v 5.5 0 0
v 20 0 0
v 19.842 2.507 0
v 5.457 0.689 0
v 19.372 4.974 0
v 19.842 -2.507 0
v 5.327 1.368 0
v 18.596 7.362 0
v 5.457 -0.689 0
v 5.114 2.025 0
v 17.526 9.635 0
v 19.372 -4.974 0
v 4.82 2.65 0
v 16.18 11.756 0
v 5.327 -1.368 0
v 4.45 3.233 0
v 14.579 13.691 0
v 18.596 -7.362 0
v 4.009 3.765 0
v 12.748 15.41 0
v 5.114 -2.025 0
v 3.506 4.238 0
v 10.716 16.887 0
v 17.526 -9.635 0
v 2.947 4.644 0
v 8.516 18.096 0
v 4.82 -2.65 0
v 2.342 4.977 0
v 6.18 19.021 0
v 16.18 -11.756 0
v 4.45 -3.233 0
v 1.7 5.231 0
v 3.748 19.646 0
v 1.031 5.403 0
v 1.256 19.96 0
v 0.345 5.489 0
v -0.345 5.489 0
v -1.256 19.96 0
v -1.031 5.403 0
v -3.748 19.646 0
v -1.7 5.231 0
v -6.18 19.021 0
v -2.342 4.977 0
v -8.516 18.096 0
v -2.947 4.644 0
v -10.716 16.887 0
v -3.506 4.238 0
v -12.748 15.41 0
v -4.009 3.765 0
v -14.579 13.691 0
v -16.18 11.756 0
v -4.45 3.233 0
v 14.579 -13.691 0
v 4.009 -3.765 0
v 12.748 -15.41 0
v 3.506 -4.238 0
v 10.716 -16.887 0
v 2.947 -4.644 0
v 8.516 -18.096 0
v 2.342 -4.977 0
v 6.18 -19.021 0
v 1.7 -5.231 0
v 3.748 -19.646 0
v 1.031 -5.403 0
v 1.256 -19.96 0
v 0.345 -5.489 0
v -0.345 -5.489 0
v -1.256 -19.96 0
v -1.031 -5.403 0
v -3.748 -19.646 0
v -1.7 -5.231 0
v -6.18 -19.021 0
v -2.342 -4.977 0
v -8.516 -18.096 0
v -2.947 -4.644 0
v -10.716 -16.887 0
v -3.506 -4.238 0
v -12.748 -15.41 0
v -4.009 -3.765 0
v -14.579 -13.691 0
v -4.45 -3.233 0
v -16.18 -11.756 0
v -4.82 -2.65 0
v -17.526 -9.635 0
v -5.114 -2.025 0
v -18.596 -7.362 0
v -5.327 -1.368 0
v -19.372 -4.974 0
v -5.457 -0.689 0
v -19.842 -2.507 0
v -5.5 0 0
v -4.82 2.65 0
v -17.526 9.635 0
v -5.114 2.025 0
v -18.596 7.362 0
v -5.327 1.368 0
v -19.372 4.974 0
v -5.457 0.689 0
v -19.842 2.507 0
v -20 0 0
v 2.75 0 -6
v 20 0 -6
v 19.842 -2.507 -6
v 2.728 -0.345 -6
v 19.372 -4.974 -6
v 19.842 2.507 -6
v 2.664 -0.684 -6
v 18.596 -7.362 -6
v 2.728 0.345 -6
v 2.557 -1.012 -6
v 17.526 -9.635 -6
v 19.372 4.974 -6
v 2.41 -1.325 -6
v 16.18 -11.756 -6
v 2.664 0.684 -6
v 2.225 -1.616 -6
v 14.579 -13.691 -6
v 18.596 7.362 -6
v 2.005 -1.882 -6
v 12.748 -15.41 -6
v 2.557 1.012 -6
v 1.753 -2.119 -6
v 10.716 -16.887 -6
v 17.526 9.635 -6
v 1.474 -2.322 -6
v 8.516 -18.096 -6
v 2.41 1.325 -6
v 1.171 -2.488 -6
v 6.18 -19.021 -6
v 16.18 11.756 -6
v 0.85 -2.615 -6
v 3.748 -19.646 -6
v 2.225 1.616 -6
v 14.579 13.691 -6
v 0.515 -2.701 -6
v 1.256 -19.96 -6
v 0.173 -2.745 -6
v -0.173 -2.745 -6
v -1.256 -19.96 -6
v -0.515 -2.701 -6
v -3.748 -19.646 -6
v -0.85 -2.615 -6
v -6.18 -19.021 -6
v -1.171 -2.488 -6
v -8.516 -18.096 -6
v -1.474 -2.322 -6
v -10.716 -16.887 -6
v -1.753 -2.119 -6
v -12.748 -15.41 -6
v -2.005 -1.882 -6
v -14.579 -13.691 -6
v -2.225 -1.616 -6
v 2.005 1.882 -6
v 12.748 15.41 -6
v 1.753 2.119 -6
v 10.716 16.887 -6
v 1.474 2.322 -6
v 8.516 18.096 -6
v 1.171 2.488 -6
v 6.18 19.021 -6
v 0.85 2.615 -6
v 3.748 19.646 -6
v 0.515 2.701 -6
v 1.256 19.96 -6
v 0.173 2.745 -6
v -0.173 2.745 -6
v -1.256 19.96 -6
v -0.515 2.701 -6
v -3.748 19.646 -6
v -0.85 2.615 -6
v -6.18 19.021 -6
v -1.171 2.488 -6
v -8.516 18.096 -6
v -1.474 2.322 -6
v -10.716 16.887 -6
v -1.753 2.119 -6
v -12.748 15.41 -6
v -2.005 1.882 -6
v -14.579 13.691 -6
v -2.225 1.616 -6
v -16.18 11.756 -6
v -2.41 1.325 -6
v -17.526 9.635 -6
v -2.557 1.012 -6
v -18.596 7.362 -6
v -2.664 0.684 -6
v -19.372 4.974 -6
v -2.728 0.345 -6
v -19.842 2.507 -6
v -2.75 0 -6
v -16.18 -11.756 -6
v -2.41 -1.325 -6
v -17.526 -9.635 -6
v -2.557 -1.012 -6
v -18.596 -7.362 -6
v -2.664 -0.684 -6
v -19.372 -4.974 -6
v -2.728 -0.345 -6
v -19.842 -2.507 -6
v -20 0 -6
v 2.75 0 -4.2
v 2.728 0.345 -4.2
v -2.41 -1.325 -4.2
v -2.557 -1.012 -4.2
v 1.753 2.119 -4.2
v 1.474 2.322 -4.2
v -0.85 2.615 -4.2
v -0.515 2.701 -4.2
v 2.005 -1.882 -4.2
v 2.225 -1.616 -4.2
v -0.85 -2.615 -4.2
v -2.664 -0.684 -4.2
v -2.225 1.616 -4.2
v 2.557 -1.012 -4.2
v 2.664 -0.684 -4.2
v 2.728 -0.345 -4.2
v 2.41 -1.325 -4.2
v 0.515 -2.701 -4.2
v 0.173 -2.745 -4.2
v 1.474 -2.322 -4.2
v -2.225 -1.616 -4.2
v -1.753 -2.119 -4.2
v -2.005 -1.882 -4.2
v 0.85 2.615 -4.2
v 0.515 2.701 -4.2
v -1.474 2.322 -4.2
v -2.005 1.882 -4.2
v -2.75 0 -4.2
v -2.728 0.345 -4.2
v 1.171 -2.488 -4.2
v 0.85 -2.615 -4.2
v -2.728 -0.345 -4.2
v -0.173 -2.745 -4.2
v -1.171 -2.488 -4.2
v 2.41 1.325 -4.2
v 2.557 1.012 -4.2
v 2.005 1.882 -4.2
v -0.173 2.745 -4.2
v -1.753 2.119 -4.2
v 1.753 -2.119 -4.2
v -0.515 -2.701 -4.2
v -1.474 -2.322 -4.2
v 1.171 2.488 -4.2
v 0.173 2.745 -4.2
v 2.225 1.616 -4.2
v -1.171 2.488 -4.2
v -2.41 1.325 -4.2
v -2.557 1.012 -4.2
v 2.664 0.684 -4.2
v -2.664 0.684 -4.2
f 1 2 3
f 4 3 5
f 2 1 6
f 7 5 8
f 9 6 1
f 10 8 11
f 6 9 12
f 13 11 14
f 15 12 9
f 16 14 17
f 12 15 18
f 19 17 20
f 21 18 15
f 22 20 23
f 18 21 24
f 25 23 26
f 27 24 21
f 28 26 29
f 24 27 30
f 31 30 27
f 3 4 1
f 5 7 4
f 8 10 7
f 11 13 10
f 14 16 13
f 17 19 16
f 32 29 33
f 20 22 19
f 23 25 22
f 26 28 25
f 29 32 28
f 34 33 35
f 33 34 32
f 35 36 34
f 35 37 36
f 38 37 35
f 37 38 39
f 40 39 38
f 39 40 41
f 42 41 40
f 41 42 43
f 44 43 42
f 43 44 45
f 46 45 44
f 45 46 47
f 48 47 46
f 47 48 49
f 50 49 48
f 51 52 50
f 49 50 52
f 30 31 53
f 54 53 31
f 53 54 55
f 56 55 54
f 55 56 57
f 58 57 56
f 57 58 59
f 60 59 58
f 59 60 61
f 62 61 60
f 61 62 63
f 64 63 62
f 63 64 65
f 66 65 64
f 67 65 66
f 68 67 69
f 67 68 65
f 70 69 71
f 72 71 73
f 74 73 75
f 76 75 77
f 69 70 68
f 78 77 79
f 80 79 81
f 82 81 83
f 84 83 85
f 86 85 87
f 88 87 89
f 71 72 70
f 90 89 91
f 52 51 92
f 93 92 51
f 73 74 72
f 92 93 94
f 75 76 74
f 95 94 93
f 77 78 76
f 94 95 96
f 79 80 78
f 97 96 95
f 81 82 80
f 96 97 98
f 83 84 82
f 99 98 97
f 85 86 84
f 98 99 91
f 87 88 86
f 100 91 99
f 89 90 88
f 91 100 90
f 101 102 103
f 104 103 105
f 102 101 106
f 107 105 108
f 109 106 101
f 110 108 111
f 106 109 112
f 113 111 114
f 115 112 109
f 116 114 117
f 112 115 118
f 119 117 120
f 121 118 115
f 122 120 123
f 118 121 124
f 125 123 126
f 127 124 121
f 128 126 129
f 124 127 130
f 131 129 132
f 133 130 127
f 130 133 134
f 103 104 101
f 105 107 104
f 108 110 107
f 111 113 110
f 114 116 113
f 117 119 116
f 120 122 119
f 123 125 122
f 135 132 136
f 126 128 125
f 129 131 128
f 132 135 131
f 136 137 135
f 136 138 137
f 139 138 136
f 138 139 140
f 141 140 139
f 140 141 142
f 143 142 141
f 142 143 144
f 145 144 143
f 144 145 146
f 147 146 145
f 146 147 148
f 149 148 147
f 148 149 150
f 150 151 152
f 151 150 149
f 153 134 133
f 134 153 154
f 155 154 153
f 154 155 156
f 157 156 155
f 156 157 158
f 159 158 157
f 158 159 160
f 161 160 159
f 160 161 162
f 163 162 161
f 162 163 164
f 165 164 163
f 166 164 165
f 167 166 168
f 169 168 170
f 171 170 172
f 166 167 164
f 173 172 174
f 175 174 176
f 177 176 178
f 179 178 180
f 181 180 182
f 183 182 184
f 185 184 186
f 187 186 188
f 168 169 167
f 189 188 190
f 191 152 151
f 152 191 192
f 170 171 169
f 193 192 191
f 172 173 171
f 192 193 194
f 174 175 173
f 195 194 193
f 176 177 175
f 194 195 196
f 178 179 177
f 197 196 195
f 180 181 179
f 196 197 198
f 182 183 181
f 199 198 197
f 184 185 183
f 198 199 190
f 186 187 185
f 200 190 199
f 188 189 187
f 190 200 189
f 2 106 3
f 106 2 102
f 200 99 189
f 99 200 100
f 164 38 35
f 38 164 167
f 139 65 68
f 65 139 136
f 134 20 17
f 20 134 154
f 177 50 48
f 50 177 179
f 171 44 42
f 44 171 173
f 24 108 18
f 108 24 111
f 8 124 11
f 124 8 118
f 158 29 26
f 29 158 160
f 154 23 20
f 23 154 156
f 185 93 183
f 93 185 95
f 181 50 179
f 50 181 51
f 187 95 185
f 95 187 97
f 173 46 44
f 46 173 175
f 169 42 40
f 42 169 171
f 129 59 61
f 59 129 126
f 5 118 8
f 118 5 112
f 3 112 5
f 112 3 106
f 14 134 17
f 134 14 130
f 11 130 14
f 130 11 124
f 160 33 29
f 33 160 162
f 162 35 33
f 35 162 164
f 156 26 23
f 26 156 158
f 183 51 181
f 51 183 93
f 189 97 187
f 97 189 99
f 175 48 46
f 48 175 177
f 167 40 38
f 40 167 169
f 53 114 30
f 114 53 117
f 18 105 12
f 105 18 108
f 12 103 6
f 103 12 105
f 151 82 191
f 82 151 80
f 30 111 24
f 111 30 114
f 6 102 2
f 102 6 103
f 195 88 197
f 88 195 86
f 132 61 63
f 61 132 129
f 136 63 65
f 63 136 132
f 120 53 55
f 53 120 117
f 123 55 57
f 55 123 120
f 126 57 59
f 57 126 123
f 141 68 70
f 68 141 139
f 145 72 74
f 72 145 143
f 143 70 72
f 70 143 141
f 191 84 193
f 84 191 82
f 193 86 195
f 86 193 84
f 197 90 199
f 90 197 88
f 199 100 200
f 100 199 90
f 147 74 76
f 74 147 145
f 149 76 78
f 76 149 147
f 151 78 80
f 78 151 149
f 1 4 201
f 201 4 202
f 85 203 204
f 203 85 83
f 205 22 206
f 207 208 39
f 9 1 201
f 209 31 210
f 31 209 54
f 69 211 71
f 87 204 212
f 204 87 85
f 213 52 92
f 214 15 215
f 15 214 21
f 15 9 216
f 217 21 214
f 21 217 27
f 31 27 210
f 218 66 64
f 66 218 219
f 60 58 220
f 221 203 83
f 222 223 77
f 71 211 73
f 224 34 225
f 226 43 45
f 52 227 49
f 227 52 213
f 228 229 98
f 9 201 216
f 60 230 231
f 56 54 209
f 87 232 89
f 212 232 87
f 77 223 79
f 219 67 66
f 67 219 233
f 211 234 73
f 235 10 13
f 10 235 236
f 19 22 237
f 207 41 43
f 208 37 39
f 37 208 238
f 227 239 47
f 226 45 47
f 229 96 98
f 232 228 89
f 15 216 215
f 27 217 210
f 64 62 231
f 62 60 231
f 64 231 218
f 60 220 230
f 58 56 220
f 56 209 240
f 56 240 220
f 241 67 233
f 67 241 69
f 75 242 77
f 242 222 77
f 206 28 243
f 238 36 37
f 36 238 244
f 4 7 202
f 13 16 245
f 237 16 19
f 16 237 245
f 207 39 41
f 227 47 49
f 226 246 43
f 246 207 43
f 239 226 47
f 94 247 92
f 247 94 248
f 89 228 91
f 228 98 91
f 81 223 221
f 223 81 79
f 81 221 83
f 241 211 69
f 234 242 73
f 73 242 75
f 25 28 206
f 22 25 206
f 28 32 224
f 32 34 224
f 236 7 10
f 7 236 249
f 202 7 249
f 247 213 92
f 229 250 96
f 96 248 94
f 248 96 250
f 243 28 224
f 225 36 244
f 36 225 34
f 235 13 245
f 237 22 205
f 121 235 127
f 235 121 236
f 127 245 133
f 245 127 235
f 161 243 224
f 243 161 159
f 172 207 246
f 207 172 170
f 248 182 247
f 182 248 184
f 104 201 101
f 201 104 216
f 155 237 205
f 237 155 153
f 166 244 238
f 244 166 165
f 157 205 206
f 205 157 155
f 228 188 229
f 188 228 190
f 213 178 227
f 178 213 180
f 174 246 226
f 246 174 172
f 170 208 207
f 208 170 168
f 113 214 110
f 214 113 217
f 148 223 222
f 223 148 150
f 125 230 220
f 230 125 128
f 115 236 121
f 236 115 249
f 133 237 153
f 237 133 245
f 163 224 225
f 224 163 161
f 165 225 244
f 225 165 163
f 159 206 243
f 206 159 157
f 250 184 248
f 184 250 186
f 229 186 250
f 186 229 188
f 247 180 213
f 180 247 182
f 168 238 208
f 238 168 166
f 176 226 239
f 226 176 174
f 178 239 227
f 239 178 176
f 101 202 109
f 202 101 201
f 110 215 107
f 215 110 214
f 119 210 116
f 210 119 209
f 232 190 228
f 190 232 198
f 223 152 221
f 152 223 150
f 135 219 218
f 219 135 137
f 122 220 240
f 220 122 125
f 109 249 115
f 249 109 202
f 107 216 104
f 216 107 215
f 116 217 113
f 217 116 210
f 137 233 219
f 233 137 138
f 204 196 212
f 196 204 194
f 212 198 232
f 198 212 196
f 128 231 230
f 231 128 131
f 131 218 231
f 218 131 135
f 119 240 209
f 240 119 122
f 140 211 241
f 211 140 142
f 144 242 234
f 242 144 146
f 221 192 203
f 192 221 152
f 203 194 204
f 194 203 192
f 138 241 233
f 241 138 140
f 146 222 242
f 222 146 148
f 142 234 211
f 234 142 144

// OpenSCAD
$fn = 50;


difference() {
	union() {
		translate(v = [0, 0, -6.0000000000]) {
			cylinder(h = 6, r = 10.0000000000);
		}
		translate(v = [0, 0, -6.0000000000]) {
			cylinder(h = 6, r = 20.0000000000);
		}
	}
	union() {
		translate(v = [0, 0, 0]) {
			rotate(a = [0, 0, 0]) {
				difference() {
					union() {
						#translate(v = [0, 0, -6.0000000000]) {
							cylinder(h = 6, r = 2.2500000000);
						}
						#translate(v = [0, 0, -4.2000000000]) {
							cylinder(h = 4.2000000000, r1 = 2.7500000000, r2 = 5.5000000000);
						}
						#translate(v = [0, 0, -6.0000000000]) {
							cylinder(h = 6, r = 2.7500000000);
						}
						#translate(v = [0, 0, -6.0000000000]) {
							cylinder(h = 6, r = 2.2500000000);
						}
					}
					union();
				}
			}
		}
	}
}
